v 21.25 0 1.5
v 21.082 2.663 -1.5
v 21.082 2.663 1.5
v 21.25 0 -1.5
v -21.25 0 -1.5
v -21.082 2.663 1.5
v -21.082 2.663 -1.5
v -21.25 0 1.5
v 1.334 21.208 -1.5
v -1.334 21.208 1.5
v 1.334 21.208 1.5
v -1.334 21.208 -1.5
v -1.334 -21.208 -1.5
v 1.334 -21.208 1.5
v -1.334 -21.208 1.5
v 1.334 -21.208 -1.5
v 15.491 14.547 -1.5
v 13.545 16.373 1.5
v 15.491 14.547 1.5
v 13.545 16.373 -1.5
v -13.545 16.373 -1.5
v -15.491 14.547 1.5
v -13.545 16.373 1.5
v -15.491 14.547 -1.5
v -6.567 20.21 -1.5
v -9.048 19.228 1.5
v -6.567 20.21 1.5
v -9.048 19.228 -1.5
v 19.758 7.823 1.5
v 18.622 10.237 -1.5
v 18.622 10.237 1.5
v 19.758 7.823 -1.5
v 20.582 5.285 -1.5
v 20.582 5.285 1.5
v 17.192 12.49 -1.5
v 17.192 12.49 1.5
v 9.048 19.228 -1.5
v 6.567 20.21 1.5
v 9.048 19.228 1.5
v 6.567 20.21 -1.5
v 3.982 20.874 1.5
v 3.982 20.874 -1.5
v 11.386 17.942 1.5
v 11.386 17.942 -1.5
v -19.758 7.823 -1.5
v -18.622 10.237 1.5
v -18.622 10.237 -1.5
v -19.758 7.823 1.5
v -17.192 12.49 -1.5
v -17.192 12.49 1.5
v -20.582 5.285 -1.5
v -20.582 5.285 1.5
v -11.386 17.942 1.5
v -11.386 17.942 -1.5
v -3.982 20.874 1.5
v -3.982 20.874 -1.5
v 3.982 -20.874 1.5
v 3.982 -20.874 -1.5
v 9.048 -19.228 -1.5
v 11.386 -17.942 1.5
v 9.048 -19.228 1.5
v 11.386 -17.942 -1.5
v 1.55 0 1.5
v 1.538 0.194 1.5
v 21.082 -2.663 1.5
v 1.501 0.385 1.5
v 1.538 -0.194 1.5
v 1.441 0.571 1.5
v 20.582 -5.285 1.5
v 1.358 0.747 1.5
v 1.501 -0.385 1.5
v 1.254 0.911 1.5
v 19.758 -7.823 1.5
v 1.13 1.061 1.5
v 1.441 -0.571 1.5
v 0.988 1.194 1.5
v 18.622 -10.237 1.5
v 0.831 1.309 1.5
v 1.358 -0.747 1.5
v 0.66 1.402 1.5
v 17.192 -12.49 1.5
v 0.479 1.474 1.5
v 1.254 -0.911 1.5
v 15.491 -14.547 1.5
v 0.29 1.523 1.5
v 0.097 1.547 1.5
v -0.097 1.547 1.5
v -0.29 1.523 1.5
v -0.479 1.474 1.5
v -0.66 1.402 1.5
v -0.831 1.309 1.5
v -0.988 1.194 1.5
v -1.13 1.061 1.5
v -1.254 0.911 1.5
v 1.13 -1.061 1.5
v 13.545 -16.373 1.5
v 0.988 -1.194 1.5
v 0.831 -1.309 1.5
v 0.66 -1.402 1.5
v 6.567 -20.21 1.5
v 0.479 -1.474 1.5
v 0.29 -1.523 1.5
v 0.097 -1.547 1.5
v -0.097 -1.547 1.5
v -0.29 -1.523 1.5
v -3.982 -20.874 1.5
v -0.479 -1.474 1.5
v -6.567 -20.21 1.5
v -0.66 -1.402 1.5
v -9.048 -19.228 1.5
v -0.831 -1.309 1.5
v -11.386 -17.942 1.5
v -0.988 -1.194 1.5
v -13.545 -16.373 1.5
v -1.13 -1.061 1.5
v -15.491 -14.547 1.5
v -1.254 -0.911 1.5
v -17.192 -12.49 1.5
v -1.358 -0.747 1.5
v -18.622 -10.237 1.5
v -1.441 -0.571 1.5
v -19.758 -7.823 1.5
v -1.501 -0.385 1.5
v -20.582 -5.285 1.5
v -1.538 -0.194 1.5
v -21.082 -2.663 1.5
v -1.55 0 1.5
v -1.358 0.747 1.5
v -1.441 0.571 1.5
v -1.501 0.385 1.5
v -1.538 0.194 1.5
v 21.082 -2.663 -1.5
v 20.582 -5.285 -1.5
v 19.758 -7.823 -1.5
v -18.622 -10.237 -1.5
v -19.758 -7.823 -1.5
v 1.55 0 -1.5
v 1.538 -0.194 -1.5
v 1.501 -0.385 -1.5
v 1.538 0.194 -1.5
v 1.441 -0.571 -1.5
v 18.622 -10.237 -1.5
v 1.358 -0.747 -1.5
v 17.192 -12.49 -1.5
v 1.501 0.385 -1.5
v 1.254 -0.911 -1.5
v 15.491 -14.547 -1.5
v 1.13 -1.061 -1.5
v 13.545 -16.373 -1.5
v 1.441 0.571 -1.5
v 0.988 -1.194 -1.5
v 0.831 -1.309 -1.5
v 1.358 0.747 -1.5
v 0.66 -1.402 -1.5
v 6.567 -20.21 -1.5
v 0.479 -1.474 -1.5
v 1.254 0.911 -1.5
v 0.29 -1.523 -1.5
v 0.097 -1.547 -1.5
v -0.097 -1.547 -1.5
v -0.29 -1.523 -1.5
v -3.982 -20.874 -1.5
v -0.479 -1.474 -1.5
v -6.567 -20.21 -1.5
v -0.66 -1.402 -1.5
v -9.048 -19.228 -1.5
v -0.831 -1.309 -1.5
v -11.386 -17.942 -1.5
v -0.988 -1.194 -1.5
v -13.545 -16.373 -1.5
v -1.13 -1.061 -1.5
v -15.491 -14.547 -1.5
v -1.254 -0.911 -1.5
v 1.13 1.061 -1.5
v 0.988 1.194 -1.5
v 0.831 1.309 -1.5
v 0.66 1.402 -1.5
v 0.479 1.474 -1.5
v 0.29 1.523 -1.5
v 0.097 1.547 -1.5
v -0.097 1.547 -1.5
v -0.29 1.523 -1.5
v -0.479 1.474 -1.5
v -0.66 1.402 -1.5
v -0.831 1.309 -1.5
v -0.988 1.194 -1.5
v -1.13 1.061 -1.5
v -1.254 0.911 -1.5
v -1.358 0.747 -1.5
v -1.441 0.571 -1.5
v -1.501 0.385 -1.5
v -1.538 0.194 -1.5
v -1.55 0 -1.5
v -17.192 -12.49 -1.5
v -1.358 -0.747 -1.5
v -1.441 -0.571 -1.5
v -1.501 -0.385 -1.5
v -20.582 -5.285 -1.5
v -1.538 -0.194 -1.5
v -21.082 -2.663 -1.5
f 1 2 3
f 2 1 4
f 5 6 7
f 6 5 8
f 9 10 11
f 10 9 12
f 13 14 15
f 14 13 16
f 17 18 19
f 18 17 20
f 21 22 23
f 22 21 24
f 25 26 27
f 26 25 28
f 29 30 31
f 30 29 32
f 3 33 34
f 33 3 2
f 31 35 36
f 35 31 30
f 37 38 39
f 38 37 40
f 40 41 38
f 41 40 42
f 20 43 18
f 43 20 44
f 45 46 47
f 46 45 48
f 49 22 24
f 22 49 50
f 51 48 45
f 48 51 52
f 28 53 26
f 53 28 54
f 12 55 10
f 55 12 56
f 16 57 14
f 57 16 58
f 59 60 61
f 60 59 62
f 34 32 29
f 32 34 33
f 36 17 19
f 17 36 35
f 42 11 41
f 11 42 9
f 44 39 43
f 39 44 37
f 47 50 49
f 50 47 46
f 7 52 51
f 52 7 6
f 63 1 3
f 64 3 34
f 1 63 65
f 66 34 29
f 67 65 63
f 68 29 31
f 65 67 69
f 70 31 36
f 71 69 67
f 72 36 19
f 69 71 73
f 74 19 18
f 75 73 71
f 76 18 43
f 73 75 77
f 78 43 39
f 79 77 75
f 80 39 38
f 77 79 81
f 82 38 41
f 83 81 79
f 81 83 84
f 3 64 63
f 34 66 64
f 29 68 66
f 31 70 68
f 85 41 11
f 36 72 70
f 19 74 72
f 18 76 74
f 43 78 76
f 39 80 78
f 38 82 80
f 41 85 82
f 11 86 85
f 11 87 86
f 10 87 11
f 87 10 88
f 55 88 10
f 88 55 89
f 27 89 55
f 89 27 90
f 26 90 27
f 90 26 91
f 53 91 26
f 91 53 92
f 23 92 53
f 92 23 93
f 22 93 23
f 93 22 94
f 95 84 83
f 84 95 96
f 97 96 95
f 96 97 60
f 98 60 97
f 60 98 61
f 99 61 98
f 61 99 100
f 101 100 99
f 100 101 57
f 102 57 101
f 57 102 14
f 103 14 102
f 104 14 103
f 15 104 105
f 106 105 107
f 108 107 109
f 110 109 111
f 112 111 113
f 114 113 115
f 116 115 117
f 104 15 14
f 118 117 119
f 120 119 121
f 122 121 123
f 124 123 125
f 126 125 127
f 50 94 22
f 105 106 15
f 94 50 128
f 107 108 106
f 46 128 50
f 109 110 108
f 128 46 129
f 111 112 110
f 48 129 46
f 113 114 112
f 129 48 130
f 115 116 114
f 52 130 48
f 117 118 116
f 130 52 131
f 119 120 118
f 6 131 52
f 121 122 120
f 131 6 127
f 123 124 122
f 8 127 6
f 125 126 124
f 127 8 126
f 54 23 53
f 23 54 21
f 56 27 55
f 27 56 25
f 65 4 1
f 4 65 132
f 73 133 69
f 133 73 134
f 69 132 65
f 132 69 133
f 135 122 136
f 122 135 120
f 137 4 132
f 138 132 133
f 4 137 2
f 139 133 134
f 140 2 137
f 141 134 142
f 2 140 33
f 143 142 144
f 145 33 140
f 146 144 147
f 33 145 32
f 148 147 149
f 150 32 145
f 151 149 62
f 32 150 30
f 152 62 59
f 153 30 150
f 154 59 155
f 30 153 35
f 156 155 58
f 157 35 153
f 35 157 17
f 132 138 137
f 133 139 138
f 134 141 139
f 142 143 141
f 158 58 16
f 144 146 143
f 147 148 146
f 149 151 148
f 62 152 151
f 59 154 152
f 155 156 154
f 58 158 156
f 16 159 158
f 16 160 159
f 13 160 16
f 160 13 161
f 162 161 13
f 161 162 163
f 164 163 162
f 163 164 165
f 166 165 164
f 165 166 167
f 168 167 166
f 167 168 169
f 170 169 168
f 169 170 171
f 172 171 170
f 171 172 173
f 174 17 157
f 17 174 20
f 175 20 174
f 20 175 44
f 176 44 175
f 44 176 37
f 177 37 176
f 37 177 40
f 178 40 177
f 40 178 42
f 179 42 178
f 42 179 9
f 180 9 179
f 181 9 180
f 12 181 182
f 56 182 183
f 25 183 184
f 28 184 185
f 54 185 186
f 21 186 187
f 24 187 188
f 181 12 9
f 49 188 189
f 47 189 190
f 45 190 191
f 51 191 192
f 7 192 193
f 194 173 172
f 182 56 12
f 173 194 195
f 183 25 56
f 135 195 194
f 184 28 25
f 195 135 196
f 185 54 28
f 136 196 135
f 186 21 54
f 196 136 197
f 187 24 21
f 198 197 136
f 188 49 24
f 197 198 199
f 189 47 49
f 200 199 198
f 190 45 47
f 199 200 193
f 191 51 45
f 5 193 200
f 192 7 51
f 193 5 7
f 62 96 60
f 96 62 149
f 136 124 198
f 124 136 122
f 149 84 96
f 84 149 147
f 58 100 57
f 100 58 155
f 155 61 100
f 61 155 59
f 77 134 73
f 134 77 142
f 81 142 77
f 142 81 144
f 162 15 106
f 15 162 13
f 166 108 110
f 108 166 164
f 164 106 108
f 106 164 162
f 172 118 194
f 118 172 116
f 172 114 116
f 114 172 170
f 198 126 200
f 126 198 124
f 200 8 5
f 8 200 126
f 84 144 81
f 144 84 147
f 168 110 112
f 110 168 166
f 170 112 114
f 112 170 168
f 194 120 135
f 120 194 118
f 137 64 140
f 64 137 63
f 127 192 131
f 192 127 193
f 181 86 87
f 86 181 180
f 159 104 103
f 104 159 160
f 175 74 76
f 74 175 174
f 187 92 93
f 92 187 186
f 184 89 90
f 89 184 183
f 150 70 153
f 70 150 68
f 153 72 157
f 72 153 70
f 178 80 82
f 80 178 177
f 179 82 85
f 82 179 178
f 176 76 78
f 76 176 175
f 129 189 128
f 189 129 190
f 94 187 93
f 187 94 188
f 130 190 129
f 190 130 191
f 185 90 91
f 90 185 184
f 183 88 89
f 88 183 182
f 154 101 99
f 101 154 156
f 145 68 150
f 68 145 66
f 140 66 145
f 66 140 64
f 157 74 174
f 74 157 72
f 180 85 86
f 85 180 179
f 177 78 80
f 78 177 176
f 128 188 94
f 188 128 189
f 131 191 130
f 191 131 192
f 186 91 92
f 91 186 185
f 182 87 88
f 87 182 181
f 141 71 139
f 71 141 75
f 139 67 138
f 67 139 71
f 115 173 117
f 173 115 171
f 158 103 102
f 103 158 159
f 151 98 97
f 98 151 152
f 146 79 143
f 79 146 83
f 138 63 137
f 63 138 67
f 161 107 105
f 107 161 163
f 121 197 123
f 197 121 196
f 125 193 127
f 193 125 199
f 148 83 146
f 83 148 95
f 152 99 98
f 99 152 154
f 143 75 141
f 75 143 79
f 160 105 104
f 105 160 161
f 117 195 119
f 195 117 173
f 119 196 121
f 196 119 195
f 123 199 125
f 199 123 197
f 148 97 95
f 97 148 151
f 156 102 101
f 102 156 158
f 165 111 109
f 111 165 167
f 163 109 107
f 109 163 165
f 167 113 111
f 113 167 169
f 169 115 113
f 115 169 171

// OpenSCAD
$fn = 50;


difference() {
	union() {
		translate(v = [0, 0, -1.5000000000]) {
			cylinder(h = 3, r = 21.2500000000);
		}
	}
	union() {
		translate(v = [0, 0, -100.0000000000]) {
			cylinder(h = 200, r = 1.5500000000);
		}
	}
}
